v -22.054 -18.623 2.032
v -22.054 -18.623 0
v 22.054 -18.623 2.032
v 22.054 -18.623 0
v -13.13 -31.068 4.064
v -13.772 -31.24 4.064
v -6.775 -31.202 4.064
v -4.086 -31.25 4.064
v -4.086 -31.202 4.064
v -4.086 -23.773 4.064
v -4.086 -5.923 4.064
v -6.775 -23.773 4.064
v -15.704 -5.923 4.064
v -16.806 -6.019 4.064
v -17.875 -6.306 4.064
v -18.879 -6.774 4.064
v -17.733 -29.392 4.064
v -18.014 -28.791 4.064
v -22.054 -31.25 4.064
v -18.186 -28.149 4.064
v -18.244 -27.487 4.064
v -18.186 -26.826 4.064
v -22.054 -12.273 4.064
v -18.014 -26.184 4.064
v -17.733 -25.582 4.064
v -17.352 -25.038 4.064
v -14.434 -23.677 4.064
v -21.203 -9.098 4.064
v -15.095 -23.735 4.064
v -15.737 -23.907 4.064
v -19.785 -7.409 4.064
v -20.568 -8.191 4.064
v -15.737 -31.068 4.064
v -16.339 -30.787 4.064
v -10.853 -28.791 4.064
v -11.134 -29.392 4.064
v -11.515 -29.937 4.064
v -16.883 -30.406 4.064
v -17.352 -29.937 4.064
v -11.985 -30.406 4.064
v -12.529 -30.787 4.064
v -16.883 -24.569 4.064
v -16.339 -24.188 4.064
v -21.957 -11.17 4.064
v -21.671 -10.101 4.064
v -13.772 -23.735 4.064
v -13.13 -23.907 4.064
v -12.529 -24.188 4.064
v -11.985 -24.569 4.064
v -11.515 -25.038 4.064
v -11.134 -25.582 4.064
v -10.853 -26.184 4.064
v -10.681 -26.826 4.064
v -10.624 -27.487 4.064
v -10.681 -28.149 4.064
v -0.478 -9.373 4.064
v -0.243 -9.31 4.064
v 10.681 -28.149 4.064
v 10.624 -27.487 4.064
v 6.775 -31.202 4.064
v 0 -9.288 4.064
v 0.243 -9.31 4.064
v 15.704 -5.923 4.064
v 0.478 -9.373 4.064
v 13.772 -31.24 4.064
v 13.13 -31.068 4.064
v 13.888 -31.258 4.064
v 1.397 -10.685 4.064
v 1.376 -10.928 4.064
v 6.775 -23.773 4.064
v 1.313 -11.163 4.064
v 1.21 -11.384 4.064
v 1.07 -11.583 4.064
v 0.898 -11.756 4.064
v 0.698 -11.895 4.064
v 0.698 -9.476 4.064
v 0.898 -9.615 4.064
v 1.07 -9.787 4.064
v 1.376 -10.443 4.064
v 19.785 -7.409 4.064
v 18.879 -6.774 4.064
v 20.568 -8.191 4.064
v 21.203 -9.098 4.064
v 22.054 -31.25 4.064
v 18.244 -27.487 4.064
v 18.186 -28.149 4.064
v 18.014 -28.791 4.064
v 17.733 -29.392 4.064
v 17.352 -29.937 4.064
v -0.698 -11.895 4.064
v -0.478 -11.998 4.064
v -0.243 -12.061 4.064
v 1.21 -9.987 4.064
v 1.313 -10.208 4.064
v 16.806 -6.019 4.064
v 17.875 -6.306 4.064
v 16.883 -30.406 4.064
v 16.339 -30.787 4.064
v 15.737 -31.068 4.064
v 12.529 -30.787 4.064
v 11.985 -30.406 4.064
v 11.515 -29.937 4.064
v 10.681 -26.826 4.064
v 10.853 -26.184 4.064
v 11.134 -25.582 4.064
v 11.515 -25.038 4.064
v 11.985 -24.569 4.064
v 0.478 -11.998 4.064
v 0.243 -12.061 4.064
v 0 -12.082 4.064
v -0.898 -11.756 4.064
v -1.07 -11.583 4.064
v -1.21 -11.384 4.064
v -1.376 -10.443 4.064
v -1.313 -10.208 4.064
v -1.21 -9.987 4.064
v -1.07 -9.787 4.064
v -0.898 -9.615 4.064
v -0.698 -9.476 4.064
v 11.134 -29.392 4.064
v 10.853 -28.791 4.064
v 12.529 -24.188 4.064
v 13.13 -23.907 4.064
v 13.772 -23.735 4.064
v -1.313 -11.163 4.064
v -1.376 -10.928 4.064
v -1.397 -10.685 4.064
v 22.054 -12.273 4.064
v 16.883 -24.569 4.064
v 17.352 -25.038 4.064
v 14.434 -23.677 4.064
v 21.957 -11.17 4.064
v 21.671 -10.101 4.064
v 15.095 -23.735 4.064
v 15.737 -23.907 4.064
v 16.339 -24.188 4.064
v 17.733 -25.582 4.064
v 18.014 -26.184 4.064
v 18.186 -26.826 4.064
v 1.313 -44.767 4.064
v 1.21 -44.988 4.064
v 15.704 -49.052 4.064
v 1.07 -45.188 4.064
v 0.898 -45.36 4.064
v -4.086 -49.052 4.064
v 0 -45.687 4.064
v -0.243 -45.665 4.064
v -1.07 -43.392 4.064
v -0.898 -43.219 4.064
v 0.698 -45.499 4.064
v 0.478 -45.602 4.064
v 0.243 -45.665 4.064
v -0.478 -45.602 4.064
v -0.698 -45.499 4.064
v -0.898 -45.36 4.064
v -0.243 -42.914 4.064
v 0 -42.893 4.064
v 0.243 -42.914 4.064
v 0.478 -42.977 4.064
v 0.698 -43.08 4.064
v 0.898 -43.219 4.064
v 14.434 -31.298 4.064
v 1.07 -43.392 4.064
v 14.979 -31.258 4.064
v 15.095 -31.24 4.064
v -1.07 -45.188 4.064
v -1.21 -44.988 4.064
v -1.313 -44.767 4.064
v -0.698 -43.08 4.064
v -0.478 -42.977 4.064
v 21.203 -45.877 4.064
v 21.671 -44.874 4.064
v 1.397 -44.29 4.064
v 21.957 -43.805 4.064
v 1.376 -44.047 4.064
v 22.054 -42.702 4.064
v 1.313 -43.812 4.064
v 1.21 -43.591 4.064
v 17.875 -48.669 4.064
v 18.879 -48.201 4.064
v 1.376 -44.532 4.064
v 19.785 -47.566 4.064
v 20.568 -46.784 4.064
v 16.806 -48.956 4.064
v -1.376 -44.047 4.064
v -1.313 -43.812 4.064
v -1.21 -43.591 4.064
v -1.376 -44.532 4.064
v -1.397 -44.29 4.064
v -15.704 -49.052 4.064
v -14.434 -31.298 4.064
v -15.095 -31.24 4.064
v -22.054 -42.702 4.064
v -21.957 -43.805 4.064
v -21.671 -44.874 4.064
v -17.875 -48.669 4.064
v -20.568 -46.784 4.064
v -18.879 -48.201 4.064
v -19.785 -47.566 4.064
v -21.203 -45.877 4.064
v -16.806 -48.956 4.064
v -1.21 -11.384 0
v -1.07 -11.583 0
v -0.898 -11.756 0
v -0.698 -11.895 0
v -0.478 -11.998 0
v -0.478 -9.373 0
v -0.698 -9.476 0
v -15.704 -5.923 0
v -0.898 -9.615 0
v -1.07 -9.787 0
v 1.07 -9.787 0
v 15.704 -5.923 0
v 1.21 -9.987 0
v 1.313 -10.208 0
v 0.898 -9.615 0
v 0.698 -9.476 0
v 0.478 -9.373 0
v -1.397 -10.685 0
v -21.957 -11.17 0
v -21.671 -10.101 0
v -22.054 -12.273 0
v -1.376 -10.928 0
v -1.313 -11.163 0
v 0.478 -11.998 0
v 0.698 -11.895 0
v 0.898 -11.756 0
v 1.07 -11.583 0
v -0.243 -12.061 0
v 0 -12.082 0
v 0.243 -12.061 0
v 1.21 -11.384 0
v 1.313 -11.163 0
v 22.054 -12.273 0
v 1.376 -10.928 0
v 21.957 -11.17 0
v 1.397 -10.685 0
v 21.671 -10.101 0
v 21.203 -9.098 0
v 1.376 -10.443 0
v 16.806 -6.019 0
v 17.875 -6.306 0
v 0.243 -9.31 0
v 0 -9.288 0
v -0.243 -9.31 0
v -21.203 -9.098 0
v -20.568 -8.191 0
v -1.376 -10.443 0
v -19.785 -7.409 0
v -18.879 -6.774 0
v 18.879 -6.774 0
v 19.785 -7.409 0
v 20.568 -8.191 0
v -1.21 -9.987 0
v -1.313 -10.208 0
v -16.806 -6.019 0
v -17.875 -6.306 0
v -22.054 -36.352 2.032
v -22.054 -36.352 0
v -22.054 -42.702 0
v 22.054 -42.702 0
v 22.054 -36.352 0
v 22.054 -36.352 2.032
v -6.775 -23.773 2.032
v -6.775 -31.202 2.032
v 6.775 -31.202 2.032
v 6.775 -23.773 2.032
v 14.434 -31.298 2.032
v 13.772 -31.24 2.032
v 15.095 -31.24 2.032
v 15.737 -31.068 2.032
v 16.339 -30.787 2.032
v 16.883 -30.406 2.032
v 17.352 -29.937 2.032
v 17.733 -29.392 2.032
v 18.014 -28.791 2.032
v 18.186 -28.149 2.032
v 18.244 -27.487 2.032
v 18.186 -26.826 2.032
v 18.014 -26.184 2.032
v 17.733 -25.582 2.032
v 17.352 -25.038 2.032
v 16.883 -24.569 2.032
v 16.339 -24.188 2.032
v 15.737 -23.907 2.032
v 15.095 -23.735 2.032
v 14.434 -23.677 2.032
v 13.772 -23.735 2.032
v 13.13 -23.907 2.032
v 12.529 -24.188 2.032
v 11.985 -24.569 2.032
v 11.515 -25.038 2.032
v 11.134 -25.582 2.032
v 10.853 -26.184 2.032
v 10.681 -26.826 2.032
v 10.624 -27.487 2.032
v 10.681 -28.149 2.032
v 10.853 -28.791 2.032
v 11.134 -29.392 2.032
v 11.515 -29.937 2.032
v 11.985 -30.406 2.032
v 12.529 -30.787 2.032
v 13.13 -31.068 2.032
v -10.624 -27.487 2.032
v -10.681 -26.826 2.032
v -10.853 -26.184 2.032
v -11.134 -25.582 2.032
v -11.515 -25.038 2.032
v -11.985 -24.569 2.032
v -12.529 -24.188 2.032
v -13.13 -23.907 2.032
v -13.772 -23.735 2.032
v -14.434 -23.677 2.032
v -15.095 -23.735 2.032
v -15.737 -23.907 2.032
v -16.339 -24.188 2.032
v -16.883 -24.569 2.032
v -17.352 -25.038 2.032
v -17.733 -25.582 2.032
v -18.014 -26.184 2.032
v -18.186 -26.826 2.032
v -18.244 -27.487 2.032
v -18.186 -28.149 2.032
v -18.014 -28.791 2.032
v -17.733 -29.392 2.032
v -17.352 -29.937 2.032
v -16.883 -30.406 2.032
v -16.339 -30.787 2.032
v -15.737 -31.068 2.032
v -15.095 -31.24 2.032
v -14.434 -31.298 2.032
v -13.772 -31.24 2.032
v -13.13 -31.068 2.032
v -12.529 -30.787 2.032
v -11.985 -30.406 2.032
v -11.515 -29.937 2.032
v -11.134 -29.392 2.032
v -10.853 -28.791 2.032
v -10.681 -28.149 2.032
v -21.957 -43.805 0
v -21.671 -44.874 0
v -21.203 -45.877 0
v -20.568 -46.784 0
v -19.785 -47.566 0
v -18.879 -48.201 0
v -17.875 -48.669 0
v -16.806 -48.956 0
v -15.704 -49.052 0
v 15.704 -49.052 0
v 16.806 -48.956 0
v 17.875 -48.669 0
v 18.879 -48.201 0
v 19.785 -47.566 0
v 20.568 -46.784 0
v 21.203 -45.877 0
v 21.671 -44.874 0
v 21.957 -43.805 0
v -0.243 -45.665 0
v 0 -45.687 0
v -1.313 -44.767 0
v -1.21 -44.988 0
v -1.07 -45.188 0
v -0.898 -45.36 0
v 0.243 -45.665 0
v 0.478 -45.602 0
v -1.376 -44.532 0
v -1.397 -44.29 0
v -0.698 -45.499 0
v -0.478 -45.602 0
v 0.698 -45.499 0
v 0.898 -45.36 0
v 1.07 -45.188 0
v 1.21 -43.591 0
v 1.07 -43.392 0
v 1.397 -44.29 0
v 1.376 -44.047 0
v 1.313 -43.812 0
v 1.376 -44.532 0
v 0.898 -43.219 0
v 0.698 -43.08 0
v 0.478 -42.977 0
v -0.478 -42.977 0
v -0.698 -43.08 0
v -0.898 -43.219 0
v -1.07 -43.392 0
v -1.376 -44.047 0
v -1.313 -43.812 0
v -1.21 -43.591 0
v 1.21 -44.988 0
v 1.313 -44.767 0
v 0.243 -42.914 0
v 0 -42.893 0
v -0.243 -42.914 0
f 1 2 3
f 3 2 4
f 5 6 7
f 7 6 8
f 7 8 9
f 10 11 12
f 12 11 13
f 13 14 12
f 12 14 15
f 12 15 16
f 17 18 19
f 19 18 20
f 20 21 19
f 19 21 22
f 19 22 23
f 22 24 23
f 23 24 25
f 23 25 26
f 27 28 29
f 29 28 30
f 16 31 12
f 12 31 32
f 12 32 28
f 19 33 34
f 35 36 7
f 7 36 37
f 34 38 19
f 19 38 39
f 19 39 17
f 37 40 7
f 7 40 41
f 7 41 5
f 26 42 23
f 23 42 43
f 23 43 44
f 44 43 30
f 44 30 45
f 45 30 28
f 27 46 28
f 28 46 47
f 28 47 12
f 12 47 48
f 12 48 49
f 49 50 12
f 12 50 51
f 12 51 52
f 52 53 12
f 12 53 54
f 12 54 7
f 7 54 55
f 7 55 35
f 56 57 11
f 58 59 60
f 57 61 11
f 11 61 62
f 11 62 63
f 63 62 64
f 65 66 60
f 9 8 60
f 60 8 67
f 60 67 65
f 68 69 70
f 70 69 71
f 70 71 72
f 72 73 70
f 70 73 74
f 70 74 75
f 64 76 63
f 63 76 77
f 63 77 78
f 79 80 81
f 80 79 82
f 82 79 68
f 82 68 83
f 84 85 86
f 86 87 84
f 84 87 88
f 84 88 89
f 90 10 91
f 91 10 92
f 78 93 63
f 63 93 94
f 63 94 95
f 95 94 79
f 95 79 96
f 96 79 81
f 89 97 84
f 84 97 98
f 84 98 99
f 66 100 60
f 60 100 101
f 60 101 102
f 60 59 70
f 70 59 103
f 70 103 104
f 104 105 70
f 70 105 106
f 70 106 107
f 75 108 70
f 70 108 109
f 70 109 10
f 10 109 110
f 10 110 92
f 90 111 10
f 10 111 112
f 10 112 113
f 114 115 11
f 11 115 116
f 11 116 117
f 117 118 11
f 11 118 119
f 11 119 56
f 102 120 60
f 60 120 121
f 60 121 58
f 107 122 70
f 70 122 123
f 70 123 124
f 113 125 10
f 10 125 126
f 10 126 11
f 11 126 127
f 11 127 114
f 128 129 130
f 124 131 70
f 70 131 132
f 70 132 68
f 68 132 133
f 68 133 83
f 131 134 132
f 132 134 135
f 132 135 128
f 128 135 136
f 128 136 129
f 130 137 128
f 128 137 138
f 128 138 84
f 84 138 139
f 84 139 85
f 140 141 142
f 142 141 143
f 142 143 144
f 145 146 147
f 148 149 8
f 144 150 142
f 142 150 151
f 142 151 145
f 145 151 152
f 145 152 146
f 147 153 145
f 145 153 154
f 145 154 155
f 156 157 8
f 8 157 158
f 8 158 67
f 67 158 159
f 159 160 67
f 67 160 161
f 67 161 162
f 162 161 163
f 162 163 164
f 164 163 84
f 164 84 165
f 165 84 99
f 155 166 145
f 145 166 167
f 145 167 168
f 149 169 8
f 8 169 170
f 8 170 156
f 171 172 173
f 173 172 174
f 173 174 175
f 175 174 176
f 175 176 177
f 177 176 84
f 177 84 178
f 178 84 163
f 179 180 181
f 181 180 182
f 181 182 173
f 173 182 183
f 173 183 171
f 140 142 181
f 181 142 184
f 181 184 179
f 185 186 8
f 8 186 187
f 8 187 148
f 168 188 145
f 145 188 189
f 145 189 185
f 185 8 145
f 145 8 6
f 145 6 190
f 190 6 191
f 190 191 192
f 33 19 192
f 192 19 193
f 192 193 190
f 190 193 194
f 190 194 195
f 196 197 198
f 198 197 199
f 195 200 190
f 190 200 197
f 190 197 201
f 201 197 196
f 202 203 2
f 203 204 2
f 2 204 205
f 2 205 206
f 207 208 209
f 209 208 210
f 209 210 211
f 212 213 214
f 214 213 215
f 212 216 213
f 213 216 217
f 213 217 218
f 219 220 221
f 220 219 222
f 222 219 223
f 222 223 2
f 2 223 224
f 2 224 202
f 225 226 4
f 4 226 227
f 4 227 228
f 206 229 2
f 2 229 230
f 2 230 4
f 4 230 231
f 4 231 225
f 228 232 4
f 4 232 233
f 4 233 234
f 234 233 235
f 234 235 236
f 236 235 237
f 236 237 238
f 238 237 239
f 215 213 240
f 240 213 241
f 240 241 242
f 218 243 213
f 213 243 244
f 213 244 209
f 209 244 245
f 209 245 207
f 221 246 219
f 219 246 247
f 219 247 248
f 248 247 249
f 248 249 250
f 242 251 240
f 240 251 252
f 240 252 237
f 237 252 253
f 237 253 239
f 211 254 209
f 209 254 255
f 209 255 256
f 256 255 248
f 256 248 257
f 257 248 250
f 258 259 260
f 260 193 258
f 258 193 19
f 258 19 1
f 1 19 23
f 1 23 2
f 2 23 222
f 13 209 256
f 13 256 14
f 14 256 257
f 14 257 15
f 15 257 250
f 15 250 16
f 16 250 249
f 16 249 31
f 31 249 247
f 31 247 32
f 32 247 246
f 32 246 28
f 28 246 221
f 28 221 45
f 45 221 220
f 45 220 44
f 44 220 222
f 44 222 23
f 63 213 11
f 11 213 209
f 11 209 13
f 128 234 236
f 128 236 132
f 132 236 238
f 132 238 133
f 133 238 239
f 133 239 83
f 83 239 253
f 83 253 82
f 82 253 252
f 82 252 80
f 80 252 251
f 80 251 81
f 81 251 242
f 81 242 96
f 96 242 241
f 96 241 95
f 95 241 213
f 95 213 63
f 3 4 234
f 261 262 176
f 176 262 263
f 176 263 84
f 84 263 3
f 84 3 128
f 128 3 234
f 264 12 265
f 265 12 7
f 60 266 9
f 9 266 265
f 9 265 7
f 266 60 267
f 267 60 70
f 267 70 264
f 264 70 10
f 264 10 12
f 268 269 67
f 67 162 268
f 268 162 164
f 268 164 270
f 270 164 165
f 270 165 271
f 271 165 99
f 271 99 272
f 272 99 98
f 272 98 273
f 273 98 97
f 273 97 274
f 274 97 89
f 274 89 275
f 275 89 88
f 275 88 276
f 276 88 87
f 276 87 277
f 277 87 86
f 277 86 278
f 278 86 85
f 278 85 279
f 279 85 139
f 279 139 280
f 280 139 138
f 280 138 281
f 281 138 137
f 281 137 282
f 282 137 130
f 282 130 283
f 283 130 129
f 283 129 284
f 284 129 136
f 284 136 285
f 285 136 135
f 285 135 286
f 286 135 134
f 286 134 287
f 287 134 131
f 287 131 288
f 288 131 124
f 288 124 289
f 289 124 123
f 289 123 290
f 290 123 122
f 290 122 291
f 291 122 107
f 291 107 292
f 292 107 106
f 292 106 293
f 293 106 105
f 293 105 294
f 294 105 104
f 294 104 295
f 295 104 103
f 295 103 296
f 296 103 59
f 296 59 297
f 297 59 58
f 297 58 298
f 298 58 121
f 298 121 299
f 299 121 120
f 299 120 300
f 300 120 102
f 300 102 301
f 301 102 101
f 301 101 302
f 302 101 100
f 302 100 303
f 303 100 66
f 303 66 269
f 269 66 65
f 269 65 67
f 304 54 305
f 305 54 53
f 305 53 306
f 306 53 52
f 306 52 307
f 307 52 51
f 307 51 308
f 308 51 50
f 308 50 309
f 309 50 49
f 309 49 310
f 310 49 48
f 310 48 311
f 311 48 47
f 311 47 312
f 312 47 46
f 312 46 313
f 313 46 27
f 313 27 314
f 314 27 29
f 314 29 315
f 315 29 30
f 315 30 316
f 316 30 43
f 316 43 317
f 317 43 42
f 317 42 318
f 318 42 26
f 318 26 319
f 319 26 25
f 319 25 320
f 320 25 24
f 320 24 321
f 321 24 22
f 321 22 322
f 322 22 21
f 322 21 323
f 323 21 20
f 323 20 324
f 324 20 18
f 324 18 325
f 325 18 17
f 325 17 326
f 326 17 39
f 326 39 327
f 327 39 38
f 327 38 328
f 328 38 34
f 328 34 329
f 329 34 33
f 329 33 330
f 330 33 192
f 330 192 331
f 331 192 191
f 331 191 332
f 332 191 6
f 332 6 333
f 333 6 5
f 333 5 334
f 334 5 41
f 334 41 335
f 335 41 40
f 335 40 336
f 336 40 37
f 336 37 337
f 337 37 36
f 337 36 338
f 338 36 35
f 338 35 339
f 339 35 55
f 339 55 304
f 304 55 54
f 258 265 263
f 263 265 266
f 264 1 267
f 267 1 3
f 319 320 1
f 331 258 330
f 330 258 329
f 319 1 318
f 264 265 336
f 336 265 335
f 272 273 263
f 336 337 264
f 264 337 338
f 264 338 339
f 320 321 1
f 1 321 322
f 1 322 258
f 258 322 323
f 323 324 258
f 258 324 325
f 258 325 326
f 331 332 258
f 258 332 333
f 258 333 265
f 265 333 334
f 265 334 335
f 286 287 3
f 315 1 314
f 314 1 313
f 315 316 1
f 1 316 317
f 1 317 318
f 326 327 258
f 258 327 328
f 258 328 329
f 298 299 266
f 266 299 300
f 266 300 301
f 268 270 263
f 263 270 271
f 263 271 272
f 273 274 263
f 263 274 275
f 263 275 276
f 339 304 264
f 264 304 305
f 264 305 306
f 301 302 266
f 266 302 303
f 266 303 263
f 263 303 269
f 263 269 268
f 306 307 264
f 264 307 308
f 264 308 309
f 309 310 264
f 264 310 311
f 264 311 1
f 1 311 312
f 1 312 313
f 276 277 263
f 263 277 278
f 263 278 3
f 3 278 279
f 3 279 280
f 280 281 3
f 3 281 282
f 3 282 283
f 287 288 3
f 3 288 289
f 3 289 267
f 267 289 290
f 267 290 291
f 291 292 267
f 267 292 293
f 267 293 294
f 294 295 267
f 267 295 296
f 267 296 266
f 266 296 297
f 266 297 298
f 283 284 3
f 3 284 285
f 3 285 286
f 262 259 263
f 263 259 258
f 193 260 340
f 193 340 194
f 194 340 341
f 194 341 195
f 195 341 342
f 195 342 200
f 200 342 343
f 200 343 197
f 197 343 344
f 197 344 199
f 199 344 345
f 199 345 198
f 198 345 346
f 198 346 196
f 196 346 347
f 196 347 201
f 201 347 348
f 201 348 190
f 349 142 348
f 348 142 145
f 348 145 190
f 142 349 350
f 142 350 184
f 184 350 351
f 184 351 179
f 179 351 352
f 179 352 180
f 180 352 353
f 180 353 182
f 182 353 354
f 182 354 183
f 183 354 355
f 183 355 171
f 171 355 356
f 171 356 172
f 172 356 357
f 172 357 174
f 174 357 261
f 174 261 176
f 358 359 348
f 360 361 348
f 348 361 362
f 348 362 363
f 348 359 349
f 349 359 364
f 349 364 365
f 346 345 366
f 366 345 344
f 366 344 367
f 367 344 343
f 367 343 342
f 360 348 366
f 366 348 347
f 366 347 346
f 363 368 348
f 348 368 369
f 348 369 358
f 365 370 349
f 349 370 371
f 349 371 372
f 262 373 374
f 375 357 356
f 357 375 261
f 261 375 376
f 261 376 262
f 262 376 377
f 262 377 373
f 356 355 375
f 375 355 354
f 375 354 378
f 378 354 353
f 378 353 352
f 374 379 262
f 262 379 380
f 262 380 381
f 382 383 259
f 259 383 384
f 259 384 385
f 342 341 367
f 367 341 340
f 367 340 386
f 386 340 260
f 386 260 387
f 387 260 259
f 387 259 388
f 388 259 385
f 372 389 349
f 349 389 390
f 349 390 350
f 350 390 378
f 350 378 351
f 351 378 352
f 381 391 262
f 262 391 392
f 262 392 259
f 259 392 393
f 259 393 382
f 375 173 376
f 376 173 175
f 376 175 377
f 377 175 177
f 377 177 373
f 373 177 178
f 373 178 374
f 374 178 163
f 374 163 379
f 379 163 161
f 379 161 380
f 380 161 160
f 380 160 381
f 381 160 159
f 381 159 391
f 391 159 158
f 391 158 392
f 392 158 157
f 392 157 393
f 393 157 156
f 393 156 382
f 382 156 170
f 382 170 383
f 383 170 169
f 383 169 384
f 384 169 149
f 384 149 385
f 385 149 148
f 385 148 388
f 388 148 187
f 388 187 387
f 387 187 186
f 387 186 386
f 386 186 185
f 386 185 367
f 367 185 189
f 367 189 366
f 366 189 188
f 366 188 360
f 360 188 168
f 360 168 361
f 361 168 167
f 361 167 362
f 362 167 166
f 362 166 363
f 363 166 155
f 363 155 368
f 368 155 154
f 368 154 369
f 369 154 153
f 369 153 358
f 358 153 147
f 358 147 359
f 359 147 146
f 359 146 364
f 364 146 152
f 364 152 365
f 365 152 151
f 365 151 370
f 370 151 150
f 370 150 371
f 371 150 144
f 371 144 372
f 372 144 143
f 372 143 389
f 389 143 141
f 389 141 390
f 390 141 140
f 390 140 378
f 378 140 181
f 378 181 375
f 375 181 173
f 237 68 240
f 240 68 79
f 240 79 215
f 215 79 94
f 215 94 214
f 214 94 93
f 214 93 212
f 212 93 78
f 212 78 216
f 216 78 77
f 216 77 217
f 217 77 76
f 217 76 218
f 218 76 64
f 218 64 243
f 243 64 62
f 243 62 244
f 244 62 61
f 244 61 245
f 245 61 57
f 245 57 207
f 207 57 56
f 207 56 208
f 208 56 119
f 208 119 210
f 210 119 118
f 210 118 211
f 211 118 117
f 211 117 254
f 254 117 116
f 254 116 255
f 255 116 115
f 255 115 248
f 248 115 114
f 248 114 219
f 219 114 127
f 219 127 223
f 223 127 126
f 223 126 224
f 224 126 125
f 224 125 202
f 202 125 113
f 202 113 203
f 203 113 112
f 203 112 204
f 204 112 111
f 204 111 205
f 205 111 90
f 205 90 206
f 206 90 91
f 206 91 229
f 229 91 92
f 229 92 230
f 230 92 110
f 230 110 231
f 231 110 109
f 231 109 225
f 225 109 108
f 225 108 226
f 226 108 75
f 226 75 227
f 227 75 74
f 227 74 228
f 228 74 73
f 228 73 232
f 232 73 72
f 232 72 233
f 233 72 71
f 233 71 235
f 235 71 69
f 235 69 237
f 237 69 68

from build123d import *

# Parameters (mm, degrees)
BOSS_EXTRUDE1_DEPTH   = 4.064
BOSS_EXTRUDE1_2_DEPTH = 4.064
SKETCH2_W             = 44.1071
SKETCH2_H             = 24.0792
SKETCH2_R             = 3.81
BOSS_EXTRUDE2_DEPTH   = 2.032
F_3_CLEARANCE_HOLE1_D = 2.794


with BuildPart() as part:
    # Sketch1 → Boss-Extrude1 (new body)
    with BuildSketch(Plane.XY):
        with BuildLine():
            Line((-22.05355, -18.6229), (-22.05355, -12.2729))
            ThreePointArc((-22.05355, -12.2729), (-20.193678061, -7.782771939), (-15.70355, -5.9229))
            Line((-15.70355, -5.9229), (15.70355, -5.9229))
            ThreePointArc((15.70355, -5.9229), (20.193678061, -7.782771939), (22.05355, -12.2729))
            Line((22.05355, -12.2729), (22.05355, -18.6229))
            Line((22.05355, -18.6229), (-22.05355, -18.6229))
        make_face()
    extrude(amount=BOSS_EXTRUDE1_DEPTH)



with BuildPart() as body_2:
    # Sketch1 → Boss-Extrude1 2 (new body)
    with BuildSketch(Plane.XY):
        with BuildLine():
            Line((-22.05355, -36.3521), (22.05355, -36.3521))
            Line((22.05355, -36.3521), (22.05355, -42.7021))
            ThreePointArc((22.05355, -42.7021), (20.193678061, -47.192228061), (15.70355, -49.0521))
            Line((15.70355, -49.0521), (-15.70355, -49.0521))
            ThreePointArc((-15.70355, -49.0521), (-20.193678061, -47.192228061), (-22.05355, -42.7021))
            Line((-22.05355, -42.7021), (-22.05355, -36.3521))
        make_face()
    extrude(amount=BOSS_EXTRUDE1_2_DEPTH)


with BuildPart() as part_1:
    add(part.part)

    add(body_2.part)  # Boss-Extrude2 merges body 2
    # Sketch2 → Boss-Extrude2 (add)
    with BuildSketch(Plane.XY.offset(4.064)):
        with Locations((0, -27.4875)):
            Rectangle(SKETCH2_W, SKETCH2_H)
        with Locations((14.43355, -27.4875)):
            Circle(SKETCH2_R, mode=Mode.SUBTRACT)
        with Locations((-14.43355, -27.4875)):
            Circle(SKETCH2_R, mode=Mode.SUBTRACT)
        Polygon((-6.77545, -23.77275), (-6.77545, -24.71255), (-6.77545, -30.26245), (-6.77545, -31.20225), (6.77545, -31.20225), (6.77545, -23.77275), align=None, mode=Mode.SUBTRACT)
    extrude(amount=-BOSS_EXTRUDE2_DEPTH)

    # #3 Clearance Hole1 (through all)
    with Locations(Plane.XY.offset(4.064)):
        with Locations((0, -10.6854), (0, -44.2896)):
            Hole(F_3_CLEARANCE_HOLE1_D / 2)


solid = part_1.part
